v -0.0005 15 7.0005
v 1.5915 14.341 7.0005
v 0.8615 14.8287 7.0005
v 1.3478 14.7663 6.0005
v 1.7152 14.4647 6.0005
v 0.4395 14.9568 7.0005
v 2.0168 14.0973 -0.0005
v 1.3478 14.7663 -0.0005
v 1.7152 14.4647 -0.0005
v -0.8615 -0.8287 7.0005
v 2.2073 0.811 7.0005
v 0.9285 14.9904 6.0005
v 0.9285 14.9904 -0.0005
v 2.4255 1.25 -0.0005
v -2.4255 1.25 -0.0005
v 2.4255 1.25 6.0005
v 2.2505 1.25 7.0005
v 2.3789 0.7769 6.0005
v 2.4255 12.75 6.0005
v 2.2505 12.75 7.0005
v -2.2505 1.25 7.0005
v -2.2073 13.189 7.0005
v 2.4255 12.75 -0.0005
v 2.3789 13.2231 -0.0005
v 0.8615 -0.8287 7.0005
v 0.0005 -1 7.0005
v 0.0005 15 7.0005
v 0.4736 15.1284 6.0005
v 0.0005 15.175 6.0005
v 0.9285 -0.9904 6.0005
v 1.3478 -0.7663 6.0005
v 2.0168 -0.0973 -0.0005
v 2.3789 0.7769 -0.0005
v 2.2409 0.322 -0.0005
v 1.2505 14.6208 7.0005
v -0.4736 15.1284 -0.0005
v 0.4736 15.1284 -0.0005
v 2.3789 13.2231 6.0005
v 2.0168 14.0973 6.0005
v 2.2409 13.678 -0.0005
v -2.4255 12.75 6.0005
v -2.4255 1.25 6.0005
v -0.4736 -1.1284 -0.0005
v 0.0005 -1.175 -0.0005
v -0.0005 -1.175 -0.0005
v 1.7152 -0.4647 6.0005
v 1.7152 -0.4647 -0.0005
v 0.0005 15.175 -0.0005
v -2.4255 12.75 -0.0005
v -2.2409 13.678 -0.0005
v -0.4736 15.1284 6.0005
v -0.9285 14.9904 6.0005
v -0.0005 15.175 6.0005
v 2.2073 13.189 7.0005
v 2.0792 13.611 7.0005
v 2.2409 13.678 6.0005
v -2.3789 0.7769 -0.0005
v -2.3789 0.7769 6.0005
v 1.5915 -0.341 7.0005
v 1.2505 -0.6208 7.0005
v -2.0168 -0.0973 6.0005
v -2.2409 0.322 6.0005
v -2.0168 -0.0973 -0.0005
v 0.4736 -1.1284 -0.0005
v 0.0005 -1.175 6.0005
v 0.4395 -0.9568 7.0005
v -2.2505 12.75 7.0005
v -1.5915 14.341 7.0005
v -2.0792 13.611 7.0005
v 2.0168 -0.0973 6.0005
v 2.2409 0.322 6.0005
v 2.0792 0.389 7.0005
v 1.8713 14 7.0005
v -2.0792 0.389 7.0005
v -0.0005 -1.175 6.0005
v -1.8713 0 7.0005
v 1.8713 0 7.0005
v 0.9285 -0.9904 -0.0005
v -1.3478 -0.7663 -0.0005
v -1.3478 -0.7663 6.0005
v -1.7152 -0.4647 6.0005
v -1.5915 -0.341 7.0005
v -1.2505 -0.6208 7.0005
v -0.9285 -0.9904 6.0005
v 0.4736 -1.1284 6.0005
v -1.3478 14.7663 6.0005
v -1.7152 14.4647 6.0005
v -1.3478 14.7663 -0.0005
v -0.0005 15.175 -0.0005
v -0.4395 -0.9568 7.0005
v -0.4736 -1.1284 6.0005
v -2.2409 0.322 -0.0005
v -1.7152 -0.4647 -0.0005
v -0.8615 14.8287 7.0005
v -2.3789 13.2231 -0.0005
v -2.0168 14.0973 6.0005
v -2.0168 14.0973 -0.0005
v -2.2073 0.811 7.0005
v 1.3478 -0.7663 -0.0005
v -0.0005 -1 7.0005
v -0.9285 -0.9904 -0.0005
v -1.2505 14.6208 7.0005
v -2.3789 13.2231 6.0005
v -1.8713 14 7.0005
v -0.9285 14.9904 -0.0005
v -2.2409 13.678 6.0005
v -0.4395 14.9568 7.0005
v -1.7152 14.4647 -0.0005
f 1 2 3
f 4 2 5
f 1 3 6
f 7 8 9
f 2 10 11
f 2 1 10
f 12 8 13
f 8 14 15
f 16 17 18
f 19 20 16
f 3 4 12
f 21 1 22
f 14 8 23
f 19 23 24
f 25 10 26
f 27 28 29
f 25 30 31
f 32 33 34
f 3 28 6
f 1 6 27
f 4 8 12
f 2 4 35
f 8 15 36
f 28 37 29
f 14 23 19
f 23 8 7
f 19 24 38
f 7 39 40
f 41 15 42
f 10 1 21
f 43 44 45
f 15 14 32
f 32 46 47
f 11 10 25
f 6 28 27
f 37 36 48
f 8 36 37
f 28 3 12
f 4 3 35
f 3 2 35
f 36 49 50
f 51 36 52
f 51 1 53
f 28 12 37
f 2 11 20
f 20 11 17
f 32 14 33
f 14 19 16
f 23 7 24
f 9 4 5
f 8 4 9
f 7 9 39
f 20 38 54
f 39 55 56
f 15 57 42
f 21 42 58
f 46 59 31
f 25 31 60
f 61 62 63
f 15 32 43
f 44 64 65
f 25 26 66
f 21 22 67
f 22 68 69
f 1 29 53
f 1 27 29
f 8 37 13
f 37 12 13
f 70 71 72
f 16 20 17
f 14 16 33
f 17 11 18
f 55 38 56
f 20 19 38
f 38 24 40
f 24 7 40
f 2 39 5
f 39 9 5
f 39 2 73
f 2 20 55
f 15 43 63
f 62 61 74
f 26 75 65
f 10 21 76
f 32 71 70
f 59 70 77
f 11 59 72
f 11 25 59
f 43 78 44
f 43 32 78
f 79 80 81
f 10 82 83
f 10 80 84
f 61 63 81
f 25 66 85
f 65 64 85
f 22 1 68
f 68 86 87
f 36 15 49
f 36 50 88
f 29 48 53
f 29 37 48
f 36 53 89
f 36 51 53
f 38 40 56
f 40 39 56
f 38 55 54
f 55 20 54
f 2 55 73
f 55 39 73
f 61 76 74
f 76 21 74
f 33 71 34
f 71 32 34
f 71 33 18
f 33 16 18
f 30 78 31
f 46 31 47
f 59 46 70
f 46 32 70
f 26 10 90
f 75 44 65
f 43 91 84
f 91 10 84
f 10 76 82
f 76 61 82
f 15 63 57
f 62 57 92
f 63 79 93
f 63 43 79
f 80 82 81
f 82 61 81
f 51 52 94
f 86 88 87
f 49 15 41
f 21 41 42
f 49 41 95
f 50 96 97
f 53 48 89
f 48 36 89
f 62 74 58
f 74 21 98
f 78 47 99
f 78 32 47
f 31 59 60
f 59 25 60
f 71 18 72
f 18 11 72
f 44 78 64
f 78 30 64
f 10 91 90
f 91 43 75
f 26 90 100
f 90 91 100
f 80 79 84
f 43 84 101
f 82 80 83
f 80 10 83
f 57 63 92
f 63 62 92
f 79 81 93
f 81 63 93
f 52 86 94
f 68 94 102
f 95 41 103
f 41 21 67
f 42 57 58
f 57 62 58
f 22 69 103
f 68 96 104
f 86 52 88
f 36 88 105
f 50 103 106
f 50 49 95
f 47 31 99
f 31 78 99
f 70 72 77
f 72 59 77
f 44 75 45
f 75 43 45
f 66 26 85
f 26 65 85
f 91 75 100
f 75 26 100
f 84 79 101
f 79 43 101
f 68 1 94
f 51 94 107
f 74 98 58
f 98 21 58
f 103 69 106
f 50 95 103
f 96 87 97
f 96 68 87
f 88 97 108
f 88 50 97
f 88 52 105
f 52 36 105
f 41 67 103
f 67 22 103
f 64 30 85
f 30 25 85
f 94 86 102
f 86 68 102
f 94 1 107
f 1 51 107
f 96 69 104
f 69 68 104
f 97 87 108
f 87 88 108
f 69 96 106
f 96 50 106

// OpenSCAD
    minkowski() {
    translate([0,-6+13,0])
        union() {
    cylinder(d1=4.85,d2=4.85,h=6,$fn=32);
    translate([0,0,6])
    cylinder(d1=4.85,d2=4.5,h=1,$fn=32);
        }
        
    cube([0.001,17-5.5,0.001], center=true);
    }
